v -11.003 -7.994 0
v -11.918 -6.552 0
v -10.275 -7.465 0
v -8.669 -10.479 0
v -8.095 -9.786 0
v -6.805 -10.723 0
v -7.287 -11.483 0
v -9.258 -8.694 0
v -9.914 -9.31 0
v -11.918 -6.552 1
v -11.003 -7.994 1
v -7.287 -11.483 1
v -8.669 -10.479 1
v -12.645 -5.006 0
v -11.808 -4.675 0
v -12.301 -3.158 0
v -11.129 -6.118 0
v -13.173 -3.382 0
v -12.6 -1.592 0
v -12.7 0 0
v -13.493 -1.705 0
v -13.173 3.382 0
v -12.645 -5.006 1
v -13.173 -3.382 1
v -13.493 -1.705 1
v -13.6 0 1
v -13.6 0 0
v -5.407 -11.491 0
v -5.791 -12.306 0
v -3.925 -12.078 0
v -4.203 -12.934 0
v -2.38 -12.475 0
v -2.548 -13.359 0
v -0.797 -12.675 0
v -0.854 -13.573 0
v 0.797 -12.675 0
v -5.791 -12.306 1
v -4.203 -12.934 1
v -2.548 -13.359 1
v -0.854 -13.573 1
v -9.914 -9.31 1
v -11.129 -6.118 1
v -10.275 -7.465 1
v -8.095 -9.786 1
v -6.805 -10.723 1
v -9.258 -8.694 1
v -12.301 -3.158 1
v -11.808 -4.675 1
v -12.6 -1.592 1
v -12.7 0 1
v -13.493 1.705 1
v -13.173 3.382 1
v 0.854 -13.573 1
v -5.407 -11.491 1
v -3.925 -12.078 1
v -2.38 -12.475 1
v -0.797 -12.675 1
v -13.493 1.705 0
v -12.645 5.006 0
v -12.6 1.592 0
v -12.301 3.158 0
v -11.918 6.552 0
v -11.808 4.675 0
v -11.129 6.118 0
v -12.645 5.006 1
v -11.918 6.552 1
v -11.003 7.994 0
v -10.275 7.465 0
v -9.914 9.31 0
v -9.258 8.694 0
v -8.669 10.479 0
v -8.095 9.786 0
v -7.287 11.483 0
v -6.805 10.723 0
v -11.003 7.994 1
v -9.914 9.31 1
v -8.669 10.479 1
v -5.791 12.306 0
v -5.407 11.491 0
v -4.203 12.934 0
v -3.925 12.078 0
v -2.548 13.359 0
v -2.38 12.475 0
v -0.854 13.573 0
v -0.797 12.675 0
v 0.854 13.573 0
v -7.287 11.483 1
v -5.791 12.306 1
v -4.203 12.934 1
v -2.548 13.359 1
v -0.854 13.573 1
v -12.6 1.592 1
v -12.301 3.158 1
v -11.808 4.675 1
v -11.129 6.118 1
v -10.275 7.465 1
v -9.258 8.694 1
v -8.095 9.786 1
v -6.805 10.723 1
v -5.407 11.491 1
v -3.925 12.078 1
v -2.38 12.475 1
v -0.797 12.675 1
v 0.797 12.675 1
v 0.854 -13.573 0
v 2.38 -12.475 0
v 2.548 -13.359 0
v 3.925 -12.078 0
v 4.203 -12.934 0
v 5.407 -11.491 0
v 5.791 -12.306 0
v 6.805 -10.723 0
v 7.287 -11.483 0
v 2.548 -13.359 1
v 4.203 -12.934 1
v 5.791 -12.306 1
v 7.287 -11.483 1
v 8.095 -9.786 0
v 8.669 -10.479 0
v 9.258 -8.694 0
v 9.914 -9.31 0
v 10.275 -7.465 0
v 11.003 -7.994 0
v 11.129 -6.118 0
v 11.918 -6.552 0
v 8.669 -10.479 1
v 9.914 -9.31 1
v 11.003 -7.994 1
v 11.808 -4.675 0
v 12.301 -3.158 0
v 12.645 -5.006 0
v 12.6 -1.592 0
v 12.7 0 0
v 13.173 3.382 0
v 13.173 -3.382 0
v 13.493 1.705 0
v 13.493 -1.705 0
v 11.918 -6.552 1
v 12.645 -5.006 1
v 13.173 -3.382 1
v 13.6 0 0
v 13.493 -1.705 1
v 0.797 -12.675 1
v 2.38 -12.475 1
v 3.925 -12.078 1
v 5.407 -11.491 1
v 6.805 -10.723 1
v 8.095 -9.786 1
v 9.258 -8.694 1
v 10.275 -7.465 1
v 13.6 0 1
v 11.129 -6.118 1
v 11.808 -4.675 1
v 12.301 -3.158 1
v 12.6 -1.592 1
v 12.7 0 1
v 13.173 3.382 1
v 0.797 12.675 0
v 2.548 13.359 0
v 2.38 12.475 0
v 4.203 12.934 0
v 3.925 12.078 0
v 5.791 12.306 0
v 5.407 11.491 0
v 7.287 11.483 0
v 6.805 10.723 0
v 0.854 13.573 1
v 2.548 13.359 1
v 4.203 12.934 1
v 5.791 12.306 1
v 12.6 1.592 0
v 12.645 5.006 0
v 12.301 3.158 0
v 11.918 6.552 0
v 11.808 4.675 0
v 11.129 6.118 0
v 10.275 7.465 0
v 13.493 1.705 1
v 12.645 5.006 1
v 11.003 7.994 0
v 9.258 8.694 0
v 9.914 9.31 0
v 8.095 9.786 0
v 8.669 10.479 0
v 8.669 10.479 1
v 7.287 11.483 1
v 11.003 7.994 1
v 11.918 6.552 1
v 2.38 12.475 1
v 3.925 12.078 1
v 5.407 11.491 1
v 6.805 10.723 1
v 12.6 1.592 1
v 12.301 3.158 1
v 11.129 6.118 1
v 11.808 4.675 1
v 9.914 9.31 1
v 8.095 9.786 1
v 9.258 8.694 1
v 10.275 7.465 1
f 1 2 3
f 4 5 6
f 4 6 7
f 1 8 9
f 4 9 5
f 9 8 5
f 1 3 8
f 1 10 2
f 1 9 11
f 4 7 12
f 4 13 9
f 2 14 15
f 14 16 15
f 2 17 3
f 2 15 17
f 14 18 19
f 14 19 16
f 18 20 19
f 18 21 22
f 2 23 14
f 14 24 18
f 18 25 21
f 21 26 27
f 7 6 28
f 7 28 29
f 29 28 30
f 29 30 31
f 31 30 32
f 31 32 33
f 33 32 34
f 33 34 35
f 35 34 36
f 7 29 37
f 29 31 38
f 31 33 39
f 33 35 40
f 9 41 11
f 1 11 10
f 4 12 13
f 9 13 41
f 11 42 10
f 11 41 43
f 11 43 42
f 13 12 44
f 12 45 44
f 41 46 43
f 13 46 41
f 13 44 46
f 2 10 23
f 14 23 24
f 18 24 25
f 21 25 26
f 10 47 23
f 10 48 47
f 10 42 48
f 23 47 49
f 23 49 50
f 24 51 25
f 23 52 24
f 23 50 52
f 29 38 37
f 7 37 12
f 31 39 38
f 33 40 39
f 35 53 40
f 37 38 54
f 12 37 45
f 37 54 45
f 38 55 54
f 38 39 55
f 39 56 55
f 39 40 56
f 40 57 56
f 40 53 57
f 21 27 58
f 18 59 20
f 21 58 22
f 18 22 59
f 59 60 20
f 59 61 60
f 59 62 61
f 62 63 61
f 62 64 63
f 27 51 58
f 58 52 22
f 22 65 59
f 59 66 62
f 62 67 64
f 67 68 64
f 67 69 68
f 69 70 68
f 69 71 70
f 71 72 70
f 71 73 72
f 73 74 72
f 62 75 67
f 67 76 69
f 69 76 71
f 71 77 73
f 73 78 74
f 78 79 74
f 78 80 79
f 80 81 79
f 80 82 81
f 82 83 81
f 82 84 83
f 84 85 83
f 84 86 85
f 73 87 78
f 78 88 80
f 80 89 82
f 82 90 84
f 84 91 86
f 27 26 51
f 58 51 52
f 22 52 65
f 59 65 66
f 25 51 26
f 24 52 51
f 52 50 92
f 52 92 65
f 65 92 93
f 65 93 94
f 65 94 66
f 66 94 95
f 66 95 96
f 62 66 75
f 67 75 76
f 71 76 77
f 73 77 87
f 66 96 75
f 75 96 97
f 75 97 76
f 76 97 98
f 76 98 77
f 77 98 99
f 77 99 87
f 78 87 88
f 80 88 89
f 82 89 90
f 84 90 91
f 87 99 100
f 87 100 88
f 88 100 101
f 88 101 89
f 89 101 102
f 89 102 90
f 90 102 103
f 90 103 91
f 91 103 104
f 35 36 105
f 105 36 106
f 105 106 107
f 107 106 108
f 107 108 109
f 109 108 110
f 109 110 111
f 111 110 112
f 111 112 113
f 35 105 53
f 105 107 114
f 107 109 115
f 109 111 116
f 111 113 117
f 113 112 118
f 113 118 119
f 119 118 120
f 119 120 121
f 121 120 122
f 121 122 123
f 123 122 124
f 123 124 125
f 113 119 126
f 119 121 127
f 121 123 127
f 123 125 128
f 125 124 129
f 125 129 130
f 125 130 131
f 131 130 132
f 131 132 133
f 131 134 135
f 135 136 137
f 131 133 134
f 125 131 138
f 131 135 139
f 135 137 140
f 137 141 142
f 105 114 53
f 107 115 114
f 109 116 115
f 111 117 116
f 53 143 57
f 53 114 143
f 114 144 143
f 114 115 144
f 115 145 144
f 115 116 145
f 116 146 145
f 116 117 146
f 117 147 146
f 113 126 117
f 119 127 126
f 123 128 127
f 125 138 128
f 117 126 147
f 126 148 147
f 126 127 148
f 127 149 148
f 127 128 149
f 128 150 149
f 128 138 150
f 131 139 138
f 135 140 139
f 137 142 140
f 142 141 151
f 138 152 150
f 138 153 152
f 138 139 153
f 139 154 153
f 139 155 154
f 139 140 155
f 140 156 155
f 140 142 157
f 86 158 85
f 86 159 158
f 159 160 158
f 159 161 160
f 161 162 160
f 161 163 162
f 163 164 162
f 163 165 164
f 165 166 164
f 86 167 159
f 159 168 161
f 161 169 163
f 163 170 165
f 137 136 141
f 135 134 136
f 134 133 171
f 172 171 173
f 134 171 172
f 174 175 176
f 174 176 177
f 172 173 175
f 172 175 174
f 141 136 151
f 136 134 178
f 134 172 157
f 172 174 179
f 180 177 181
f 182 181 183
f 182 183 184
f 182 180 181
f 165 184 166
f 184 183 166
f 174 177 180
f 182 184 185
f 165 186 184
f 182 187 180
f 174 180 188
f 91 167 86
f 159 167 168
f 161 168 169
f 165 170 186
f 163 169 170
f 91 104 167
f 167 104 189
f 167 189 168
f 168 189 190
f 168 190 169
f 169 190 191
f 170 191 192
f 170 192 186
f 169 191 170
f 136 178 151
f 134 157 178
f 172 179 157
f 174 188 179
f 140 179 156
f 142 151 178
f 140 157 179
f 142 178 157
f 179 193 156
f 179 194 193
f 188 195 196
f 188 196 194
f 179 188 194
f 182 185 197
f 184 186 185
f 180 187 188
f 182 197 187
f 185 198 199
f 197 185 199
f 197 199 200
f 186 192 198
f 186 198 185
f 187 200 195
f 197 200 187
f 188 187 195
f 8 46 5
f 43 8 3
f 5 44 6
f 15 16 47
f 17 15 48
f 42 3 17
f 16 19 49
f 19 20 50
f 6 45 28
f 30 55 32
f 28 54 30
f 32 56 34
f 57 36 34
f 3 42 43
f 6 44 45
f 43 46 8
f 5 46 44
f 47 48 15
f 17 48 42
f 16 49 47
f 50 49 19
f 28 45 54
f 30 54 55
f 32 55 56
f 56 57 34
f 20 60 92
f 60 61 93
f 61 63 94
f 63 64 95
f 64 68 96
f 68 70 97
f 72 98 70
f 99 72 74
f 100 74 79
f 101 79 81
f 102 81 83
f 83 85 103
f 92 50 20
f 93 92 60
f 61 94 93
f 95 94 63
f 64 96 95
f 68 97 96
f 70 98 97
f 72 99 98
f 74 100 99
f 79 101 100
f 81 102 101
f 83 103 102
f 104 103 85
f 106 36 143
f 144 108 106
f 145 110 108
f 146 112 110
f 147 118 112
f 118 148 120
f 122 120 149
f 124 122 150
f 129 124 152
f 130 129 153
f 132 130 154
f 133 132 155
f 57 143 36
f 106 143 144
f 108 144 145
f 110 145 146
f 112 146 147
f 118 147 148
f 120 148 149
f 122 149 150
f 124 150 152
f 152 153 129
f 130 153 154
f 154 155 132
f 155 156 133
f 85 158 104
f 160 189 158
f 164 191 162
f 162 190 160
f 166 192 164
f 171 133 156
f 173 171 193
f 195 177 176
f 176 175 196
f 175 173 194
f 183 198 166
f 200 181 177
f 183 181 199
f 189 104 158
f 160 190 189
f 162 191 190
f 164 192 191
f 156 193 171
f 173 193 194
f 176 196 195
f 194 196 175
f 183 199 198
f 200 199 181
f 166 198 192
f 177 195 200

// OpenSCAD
$fn = 50;

difference() {
	union() {
		translate(v = [0, 0, -9]) {
			rotate(a = [0, 0, 0]) {
				difference() {
					union() {
						translate(v = [0, 0, 9.0]) {
							cylinder(h = 1, r = 13.6);
						}
					}
					union() {
						translate(v = [0, 0, 8]) {
							cylinder(h = 3, r = 12.7);
						}
					}
				}
			}
		}
	}
	union();
}
